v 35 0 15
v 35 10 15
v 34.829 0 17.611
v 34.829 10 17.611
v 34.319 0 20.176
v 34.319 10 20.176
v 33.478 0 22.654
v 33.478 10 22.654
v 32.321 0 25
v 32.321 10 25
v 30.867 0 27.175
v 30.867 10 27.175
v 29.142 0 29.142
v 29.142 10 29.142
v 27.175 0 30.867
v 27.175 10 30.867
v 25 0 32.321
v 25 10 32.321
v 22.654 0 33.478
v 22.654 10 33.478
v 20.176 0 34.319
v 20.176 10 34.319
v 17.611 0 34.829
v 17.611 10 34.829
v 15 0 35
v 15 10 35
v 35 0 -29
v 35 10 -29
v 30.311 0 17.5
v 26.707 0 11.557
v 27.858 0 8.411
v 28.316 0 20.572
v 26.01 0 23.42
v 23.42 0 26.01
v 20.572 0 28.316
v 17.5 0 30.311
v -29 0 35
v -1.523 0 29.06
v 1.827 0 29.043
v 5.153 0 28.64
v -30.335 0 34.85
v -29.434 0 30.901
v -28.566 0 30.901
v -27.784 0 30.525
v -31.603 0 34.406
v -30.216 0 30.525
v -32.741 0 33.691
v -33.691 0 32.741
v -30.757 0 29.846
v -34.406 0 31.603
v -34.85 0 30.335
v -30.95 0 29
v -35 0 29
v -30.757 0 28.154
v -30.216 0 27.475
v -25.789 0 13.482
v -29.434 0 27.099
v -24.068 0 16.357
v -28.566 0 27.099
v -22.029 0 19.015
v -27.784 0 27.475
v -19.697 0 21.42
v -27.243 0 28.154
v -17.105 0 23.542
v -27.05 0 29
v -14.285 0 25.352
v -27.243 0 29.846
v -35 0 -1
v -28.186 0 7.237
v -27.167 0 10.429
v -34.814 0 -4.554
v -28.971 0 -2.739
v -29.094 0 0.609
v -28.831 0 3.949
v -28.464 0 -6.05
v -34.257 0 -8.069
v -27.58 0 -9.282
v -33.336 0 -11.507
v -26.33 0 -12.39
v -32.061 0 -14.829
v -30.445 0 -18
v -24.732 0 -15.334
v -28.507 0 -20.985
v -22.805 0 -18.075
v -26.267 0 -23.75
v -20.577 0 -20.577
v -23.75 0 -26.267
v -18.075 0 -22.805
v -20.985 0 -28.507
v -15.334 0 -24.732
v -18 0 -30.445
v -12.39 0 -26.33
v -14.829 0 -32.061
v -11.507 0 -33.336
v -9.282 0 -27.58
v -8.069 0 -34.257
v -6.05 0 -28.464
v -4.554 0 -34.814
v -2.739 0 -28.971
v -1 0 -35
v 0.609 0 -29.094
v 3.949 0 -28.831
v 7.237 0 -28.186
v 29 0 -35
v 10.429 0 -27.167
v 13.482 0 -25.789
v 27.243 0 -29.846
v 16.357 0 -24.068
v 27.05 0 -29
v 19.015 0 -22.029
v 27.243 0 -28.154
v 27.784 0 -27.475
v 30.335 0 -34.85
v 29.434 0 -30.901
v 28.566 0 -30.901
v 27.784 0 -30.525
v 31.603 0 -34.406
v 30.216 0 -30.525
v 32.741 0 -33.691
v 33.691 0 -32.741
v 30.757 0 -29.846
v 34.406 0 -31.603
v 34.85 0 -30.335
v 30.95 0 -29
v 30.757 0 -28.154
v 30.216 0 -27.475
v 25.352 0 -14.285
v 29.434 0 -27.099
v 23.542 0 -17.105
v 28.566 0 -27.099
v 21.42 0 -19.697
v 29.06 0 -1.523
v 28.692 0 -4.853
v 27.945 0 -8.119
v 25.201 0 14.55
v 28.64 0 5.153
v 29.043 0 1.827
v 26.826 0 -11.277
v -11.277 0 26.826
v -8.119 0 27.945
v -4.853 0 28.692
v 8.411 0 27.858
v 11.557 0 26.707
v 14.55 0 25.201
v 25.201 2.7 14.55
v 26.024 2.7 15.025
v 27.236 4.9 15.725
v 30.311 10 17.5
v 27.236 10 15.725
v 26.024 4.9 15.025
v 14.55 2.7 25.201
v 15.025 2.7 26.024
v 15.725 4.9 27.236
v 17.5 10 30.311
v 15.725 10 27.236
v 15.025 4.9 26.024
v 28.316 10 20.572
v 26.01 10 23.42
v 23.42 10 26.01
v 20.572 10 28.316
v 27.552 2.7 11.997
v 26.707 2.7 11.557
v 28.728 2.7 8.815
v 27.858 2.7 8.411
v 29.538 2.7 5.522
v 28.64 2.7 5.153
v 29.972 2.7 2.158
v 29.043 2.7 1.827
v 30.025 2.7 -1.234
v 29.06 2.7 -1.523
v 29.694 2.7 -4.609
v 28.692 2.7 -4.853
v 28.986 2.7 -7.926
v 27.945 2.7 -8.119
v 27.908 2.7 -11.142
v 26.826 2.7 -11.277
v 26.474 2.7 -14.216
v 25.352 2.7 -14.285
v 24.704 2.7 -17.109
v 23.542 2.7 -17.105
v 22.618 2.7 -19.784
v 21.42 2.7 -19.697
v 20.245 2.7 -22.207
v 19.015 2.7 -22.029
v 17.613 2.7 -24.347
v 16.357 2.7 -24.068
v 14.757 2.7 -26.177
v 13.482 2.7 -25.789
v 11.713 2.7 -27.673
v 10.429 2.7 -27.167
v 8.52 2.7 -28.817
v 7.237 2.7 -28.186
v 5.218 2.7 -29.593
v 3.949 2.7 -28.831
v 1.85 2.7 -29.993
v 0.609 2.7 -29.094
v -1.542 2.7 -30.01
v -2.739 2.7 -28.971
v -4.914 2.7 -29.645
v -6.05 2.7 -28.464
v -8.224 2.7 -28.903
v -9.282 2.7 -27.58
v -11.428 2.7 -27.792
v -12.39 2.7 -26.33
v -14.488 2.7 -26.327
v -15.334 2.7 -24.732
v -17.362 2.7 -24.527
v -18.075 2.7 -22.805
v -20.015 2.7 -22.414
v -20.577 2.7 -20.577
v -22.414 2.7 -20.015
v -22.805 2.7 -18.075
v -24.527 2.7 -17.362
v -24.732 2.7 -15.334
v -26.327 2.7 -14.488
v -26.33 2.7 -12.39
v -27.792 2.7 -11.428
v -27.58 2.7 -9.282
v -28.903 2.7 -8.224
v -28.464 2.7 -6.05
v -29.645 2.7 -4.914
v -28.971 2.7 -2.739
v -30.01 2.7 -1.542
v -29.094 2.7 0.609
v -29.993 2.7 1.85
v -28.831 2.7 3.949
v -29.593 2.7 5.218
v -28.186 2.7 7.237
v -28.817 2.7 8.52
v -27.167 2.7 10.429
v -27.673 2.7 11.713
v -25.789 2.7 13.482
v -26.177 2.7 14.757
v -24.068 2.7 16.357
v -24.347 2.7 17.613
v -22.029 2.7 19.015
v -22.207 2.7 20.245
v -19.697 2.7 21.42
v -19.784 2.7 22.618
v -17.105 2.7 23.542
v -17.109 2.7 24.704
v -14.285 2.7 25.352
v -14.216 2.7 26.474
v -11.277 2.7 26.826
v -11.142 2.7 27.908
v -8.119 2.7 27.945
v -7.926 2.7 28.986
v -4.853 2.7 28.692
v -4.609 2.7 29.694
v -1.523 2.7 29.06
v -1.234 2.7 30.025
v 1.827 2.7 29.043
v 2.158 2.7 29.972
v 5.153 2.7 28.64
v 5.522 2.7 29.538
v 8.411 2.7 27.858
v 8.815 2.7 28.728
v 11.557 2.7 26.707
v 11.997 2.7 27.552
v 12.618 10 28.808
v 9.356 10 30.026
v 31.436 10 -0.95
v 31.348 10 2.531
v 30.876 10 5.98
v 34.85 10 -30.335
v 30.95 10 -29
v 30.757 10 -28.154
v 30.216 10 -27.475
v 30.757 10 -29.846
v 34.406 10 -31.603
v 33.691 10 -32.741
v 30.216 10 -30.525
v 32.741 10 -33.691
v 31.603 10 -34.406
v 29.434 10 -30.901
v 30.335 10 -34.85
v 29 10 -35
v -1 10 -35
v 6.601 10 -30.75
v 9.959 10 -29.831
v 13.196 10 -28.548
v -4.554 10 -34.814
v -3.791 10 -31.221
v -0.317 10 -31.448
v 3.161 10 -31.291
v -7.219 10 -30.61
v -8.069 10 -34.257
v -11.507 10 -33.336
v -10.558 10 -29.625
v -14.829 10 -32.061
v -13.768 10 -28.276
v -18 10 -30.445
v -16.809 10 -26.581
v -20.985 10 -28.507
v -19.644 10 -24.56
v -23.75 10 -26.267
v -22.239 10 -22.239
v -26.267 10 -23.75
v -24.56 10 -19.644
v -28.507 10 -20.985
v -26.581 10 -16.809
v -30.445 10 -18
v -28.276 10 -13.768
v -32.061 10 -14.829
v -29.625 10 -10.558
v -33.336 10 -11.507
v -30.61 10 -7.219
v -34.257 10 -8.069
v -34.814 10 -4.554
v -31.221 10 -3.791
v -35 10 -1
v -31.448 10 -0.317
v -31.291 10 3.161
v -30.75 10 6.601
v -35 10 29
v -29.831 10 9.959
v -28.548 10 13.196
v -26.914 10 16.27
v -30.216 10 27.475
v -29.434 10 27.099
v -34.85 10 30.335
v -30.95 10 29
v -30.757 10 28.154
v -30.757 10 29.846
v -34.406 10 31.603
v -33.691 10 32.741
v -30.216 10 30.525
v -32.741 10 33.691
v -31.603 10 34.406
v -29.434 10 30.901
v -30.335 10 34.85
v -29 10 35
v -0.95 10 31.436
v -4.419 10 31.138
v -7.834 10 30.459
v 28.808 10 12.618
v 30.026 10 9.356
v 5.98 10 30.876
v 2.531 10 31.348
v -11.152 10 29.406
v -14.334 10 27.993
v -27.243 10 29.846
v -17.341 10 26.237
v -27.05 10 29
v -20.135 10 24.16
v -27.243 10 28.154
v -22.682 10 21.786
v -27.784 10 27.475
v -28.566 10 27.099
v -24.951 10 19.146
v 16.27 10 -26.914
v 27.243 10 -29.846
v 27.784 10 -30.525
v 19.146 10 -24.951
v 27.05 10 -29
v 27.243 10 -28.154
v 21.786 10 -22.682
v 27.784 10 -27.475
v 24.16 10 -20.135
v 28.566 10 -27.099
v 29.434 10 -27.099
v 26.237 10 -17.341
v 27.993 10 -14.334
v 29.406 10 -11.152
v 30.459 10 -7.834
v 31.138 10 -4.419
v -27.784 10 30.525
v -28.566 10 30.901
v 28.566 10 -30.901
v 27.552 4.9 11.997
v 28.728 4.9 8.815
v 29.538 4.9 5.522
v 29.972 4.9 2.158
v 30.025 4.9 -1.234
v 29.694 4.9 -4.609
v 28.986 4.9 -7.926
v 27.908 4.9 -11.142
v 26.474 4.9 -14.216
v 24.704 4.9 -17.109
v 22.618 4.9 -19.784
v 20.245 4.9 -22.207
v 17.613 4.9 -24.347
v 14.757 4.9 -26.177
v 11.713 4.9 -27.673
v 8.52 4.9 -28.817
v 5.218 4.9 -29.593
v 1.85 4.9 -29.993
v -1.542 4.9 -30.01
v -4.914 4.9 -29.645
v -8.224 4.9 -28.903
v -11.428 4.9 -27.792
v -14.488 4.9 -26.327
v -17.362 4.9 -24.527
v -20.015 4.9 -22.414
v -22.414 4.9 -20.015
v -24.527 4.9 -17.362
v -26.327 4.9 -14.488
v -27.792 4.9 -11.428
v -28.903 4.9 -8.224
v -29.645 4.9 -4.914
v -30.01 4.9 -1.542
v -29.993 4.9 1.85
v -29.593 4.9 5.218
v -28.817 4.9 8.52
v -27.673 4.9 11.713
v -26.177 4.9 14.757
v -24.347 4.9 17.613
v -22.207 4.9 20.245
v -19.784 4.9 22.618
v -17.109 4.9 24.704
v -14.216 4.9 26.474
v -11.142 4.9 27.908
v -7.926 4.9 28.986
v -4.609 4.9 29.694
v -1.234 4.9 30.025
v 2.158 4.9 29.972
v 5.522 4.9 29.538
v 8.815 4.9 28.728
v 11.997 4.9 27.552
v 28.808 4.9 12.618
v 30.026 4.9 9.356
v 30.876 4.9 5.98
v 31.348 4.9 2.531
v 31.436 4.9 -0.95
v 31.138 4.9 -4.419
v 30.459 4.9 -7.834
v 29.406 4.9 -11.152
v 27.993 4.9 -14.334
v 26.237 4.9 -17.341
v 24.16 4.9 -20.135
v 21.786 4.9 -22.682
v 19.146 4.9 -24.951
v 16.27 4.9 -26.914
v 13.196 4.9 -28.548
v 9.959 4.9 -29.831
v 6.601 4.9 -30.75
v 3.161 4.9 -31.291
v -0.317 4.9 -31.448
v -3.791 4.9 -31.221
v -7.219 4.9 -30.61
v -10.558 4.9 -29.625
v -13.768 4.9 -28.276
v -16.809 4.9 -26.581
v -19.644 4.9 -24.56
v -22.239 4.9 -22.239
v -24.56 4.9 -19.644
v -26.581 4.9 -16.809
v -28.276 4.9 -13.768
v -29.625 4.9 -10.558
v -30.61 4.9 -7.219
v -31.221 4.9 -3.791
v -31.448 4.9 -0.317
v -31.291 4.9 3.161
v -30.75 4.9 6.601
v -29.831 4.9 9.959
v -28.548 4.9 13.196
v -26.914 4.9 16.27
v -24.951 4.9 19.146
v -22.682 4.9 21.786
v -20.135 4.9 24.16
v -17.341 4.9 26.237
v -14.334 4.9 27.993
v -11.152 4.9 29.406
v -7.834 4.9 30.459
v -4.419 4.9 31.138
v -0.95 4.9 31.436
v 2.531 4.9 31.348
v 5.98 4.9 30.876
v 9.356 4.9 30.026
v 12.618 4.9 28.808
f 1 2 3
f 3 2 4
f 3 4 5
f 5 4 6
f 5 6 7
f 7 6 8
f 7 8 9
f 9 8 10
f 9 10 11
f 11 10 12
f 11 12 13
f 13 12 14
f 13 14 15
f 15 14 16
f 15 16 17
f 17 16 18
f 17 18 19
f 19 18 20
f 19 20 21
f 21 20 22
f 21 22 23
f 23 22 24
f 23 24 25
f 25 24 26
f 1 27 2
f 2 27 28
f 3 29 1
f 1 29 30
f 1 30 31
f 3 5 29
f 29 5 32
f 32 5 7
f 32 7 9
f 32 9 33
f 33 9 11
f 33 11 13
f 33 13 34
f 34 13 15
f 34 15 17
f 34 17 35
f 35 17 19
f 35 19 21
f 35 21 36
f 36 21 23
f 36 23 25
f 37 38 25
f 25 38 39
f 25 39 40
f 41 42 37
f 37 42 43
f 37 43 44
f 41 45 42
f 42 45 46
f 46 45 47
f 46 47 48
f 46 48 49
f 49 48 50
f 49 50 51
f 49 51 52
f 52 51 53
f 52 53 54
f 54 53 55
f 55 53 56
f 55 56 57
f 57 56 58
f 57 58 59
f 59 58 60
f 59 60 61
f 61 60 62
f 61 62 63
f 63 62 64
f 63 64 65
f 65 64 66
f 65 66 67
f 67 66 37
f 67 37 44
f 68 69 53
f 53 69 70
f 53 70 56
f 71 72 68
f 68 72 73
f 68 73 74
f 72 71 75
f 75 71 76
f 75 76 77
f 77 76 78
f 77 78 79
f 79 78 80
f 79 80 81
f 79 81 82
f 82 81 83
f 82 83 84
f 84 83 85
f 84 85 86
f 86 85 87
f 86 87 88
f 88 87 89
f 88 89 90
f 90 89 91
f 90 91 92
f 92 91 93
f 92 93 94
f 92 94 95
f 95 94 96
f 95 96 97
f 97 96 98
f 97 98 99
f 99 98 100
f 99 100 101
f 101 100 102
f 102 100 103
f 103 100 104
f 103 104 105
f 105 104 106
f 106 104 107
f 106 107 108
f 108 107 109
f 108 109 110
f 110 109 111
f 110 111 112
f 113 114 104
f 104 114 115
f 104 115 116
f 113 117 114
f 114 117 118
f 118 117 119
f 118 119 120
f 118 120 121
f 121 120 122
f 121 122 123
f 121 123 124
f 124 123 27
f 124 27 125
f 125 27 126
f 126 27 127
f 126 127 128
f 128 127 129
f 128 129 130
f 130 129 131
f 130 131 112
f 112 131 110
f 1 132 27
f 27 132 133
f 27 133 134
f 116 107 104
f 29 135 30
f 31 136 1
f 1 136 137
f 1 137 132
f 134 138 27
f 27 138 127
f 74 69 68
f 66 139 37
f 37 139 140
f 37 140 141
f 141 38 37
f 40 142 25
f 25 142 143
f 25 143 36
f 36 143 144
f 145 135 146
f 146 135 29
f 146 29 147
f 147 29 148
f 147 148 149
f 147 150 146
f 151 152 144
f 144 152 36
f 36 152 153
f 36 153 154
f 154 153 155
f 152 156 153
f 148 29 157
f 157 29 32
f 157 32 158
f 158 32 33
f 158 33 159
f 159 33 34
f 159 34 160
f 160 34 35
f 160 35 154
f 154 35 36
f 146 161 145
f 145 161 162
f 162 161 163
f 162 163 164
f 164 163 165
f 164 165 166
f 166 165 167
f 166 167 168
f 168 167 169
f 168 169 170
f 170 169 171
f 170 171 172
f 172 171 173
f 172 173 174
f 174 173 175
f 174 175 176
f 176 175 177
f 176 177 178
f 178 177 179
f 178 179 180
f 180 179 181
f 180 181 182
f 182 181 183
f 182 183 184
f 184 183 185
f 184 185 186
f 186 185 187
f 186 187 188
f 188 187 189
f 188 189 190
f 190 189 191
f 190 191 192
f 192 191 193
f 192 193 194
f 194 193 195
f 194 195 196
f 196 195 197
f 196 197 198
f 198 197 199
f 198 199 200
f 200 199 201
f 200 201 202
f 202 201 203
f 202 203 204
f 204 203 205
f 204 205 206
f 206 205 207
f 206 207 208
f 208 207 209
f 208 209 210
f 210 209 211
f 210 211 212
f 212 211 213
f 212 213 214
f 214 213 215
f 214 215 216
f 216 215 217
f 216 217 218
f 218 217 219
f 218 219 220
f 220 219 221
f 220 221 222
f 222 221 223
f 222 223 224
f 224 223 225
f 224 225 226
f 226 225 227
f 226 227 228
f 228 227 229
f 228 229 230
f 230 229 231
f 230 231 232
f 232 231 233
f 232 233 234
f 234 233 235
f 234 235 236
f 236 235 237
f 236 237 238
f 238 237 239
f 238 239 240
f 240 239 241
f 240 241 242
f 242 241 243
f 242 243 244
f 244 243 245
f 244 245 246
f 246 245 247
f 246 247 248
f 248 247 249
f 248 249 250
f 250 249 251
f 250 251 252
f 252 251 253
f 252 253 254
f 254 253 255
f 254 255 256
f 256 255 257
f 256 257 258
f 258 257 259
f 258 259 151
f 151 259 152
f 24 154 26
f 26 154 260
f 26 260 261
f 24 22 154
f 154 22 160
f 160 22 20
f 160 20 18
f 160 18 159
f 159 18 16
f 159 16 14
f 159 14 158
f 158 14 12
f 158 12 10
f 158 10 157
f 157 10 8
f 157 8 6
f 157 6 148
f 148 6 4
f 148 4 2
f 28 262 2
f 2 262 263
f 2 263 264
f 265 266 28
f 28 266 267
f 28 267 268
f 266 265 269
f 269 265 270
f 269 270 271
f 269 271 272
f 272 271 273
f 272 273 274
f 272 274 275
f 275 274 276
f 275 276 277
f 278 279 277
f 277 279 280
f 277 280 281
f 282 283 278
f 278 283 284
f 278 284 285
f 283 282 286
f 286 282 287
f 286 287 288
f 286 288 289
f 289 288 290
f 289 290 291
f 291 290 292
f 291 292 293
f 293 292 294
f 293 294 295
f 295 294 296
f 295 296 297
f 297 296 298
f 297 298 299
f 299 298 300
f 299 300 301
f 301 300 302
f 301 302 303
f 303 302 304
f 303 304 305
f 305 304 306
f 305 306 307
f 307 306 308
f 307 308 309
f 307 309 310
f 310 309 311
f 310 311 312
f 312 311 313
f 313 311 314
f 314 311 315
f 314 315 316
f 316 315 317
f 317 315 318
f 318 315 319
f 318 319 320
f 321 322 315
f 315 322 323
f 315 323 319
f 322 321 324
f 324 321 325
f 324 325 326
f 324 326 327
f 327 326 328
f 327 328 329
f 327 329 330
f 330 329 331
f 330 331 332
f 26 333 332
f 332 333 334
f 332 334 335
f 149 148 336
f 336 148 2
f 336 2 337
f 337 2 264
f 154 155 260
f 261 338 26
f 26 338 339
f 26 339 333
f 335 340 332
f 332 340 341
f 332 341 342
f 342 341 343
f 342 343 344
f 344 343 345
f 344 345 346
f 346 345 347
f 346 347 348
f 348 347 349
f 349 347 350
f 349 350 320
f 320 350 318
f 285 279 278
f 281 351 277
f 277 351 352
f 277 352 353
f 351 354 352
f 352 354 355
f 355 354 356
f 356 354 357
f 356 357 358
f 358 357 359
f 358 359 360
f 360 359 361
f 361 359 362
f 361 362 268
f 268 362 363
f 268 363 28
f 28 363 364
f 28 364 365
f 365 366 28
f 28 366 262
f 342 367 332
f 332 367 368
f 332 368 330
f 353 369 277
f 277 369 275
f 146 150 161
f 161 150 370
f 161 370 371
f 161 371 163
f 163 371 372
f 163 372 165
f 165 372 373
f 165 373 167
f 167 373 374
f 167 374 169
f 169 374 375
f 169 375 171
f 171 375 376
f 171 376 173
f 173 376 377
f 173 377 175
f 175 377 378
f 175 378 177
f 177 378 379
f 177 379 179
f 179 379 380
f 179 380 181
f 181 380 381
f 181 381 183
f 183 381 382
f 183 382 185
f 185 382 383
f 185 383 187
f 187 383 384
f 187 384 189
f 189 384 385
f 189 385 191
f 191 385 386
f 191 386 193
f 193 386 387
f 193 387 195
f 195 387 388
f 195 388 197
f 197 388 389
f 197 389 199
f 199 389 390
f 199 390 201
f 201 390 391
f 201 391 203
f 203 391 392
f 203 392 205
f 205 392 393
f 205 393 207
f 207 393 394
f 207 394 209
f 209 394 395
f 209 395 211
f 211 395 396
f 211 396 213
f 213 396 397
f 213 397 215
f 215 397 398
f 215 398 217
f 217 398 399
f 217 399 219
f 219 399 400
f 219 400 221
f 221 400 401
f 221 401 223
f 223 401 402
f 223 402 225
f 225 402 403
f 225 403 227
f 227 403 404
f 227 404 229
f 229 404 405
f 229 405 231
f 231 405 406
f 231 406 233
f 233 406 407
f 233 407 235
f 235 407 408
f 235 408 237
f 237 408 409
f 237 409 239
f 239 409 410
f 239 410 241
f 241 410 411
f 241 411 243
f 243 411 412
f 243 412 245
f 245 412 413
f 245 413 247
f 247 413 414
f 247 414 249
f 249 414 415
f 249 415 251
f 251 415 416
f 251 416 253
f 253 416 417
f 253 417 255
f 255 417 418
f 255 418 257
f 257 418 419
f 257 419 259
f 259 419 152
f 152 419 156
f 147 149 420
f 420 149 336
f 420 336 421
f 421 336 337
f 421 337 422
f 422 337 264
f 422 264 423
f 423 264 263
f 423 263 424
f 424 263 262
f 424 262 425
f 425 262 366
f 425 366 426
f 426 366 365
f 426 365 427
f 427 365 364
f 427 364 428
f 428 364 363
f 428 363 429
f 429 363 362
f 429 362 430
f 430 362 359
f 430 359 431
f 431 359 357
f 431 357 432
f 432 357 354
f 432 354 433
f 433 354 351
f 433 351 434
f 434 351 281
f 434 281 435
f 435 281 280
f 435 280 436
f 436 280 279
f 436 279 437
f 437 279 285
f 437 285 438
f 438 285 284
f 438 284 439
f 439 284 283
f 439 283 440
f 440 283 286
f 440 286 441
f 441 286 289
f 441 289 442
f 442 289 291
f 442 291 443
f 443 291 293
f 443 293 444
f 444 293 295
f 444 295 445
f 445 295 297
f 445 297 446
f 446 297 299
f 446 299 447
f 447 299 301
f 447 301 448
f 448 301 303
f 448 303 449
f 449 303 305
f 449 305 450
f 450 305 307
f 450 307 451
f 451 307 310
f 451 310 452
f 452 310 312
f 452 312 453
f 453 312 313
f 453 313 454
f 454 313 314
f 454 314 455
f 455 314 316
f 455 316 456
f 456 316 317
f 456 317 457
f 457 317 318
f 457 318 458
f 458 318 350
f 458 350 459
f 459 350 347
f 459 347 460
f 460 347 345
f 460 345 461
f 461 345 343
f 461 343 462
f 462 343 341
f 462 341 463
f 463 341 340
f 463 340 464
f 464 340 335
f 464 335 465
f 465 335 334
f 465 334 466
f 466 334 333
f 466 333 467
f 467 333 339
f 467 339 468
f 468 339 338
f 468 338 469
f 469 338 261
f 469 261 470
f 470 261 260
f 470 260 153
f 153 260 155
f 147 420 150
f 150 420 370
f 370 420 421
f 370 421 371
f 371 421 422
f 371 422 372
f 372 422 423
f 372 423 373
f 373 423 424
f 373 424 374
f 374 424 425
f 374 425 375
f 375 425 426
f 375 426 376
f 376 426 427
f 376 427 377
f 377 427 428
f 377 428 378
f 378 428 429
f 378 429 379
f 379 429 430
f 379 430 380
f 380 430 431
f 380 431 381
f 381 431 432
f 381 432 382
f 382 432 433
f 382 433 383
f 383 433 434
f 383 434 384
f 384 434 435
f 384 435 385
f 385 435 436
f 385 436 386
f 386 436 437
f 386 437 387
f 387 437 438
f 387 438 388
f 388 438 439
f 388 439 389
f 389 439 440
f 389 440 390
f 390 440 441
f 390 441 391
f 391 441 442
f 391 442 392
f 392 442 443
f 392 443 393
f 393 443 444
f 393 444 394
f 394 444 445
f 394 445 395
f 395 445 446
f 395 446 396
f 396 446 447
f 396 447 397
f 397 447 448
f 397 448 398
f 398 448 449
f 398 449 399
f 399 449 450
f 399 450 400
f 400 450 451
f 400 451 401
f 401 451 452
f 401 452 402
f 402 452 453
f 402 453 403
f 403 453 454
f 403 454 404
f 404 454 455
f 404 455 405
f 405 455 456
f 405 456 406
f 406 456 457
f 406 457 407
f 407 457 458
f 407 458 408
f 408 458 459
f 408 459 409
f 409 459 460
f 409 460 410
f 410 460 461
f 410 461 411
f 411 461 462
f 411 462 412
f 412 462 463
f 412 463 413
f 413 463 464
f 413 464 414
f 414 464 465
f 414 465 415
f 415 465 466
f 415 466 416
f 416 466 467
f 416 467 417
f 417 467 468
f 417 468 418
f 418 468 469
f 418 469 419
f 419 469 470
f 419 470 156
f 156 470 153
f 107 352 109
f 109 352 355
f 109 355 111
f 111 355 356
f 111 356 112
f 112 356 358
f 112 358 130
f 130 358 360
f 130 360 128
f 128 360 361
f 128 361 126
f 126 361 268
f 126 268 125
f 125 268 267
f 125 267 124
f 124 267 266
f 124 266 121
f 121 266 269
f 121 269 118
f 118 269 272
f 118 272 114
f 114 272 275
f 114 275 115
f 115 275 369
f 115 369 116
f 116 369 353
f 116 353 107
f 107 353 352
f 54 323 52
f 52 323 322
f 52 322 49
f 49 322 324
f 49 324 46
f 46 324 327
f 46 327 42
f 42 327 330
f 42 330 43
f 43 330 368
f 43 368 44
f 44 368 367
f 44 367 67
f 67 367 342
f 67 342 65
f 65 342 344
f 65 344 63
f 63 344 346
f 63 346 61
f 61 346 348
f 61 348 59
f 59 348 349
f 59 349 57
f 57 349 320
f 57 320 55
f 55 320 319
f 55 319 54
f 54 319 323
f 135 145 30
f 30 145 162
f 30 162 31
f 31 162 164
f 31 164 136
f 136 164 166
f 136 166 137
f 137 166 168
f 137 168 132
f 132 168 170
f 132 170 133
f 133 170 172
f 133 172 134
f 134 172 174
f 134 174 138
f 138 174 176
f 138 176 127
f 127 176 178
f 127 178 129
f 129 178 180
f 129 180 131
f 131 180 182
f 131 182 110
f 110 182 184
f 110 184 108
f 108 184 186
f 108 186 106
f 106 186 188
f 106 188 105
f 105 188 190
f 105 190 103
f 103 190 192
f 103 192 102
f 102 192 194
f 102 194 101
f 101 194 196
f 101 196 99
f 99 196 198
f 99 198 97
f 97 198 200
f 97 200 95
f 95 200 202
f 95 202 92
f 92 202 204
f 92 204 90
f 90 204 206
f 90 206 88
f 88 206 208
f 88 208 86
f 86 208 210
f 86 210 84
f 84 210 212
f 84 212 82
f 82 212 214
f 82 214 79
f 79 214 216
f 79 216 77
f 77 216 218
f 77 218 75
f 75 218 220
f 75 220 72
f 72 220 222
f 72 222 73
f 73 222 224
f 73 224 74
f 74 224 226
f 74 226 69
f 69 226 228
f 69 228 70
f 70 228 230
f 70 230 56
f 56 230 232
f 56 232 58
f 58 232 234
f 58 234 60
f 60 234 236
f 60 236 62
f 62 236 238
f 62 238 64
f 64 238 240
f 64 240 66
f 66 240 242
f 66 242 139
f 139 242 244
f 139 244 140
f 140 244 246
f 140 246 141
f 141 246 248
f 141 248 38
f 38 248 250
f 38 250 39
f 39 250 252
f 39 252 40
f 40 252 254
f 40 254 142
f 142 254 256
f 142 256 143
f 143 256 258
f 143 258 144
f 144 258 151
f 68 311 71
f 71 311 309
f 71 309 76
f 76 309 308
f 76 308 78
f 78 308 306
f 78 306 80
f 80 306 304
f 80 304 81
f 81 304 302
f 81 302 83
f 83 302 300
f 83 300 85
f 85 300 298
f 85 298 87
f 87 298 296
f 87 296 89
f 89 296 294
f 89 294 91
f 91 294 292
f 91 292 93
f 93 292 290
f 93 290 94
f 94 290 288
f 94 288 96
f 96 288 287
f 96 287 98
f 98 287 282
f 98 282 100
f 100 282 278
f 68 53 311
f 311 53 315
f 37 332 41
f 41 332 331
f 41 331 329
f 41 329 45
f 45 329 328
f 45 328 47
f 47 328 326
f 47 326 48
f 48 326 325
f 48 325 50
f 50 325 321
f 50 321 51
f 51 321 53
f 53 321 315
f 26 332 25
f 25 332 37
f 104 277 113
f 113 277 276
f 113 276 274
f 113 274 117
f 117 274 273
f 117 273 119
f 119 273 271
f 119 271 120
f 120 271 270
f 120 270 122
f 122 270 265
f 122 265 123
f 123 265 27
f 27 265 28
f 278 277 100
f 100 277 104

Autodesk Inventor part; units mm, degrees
ref_plane "YZ Plane" through (0, 0, 0) normal (1, 0, 0) x (0, 1, 0)
ref_plane "XZ Plane" through (0, 0, 0) normal (0, 1, 0) x (-1, 0, 0)
ref_plane "XY Plane" through (0, 0, 0) normal (0, 0, 1) x (1, 0, 0)
sketch "Náčrt1" plane through (0, 0, 0) normal (0, 1, 0) x (-1, 0, 0)
  line L0 (0, -49) -> (0, 49) projected
  line L1 (35, -35) -> (-35, -35)
  line L2 (-35, -35) -> (-35, 35)
  line L3 (-35, 35) -> (35, 35)
  line L4 (35, 35) -> (35, -35)
  line L5 (-49, 0) -> (49, 0) projected
  dimension "d9" = 70
  dimension "d10" = 70
extrude "Vysunutí1" add sketch "Náčrt1" along normal blind 10
fillet "Zaoblení1" radius 6 2 edges at (35, 5, -35) (-35, 5, 35)
fillet "Zaoblení2" radius 34 1 edges at (-35, 5, -35)
sketch "Náčrt2" plane through (0, 10, 0) normal (0, 1, 0) x (1, 0, 0)
  line L0 (0, 49) -> (0, -49) projected
  line L1 (49, 0) -> (-49, 0) projected
  point P0 (0, 0)
  point P1 (0, 0)
hole "Díra1" at (0, 10, 0) direction (0, -1, 0) diameter 60.1 depth 7.3 counterbore diameter 62.9 counterbore depth 5.1
sketch "Náčrt3" plane through (0, 2.7, 0) normal (0, 1, 0) x (1, 0, 0)
  line L0 (0, 49) -> (0, -49) projected
  line L1 (49, 0) -> (-49, 0) projected
  point P0 (0, 0)
  point P1 (0, 0)
hole "Díra2" at (0, 2.7, 0) direction (0, -1, 0) diameter 58.2 end through all
sketch "Náčrt4" plane through (0, 10, 0) normal (0, 1, 0) x (1, 0, 0)
  arc A0 (-35, -29) -> (-29, -35) centre (-29, -29) ccw projected
  arc A1 (35, 29) -> (29, 35) centre (29, 29) ccw projected
  point P0 (0, 0)
hole "Díra3" at (-29, 10, 29) at (29, 10, -29) direction (0, -1, 0) diameter 3.9 end through all
sketch "Náčrt5" plane through (0, 10, 0) normal (0, 1, 0) x (1, 0, 0)
  arc A0 (17.5, -30.3109) -> (30.3109, -17.5) centre (0, 0) ccw
  line L0 (0, 49) -> (0, -49) projected
  line L1 (49, 0) -> (-49, 0) projected
  line L2 (0, 0) -> (17.5, -30.3109)
  line L3 (30.3109, -17.5) -> (0, 0)
  dimension "d35" = 35
  dimension "d36" = 30
  dimension "d37" = 30
extrude "Vysunutí2" cut sketch "Náčrt5" against normal up to surface (10 mm away)
fillet "Zaoblení4" radius 20 1 edges at (35, 5, 35)
properties part number "4.L - GM - 01.03" material "LCP plast"
